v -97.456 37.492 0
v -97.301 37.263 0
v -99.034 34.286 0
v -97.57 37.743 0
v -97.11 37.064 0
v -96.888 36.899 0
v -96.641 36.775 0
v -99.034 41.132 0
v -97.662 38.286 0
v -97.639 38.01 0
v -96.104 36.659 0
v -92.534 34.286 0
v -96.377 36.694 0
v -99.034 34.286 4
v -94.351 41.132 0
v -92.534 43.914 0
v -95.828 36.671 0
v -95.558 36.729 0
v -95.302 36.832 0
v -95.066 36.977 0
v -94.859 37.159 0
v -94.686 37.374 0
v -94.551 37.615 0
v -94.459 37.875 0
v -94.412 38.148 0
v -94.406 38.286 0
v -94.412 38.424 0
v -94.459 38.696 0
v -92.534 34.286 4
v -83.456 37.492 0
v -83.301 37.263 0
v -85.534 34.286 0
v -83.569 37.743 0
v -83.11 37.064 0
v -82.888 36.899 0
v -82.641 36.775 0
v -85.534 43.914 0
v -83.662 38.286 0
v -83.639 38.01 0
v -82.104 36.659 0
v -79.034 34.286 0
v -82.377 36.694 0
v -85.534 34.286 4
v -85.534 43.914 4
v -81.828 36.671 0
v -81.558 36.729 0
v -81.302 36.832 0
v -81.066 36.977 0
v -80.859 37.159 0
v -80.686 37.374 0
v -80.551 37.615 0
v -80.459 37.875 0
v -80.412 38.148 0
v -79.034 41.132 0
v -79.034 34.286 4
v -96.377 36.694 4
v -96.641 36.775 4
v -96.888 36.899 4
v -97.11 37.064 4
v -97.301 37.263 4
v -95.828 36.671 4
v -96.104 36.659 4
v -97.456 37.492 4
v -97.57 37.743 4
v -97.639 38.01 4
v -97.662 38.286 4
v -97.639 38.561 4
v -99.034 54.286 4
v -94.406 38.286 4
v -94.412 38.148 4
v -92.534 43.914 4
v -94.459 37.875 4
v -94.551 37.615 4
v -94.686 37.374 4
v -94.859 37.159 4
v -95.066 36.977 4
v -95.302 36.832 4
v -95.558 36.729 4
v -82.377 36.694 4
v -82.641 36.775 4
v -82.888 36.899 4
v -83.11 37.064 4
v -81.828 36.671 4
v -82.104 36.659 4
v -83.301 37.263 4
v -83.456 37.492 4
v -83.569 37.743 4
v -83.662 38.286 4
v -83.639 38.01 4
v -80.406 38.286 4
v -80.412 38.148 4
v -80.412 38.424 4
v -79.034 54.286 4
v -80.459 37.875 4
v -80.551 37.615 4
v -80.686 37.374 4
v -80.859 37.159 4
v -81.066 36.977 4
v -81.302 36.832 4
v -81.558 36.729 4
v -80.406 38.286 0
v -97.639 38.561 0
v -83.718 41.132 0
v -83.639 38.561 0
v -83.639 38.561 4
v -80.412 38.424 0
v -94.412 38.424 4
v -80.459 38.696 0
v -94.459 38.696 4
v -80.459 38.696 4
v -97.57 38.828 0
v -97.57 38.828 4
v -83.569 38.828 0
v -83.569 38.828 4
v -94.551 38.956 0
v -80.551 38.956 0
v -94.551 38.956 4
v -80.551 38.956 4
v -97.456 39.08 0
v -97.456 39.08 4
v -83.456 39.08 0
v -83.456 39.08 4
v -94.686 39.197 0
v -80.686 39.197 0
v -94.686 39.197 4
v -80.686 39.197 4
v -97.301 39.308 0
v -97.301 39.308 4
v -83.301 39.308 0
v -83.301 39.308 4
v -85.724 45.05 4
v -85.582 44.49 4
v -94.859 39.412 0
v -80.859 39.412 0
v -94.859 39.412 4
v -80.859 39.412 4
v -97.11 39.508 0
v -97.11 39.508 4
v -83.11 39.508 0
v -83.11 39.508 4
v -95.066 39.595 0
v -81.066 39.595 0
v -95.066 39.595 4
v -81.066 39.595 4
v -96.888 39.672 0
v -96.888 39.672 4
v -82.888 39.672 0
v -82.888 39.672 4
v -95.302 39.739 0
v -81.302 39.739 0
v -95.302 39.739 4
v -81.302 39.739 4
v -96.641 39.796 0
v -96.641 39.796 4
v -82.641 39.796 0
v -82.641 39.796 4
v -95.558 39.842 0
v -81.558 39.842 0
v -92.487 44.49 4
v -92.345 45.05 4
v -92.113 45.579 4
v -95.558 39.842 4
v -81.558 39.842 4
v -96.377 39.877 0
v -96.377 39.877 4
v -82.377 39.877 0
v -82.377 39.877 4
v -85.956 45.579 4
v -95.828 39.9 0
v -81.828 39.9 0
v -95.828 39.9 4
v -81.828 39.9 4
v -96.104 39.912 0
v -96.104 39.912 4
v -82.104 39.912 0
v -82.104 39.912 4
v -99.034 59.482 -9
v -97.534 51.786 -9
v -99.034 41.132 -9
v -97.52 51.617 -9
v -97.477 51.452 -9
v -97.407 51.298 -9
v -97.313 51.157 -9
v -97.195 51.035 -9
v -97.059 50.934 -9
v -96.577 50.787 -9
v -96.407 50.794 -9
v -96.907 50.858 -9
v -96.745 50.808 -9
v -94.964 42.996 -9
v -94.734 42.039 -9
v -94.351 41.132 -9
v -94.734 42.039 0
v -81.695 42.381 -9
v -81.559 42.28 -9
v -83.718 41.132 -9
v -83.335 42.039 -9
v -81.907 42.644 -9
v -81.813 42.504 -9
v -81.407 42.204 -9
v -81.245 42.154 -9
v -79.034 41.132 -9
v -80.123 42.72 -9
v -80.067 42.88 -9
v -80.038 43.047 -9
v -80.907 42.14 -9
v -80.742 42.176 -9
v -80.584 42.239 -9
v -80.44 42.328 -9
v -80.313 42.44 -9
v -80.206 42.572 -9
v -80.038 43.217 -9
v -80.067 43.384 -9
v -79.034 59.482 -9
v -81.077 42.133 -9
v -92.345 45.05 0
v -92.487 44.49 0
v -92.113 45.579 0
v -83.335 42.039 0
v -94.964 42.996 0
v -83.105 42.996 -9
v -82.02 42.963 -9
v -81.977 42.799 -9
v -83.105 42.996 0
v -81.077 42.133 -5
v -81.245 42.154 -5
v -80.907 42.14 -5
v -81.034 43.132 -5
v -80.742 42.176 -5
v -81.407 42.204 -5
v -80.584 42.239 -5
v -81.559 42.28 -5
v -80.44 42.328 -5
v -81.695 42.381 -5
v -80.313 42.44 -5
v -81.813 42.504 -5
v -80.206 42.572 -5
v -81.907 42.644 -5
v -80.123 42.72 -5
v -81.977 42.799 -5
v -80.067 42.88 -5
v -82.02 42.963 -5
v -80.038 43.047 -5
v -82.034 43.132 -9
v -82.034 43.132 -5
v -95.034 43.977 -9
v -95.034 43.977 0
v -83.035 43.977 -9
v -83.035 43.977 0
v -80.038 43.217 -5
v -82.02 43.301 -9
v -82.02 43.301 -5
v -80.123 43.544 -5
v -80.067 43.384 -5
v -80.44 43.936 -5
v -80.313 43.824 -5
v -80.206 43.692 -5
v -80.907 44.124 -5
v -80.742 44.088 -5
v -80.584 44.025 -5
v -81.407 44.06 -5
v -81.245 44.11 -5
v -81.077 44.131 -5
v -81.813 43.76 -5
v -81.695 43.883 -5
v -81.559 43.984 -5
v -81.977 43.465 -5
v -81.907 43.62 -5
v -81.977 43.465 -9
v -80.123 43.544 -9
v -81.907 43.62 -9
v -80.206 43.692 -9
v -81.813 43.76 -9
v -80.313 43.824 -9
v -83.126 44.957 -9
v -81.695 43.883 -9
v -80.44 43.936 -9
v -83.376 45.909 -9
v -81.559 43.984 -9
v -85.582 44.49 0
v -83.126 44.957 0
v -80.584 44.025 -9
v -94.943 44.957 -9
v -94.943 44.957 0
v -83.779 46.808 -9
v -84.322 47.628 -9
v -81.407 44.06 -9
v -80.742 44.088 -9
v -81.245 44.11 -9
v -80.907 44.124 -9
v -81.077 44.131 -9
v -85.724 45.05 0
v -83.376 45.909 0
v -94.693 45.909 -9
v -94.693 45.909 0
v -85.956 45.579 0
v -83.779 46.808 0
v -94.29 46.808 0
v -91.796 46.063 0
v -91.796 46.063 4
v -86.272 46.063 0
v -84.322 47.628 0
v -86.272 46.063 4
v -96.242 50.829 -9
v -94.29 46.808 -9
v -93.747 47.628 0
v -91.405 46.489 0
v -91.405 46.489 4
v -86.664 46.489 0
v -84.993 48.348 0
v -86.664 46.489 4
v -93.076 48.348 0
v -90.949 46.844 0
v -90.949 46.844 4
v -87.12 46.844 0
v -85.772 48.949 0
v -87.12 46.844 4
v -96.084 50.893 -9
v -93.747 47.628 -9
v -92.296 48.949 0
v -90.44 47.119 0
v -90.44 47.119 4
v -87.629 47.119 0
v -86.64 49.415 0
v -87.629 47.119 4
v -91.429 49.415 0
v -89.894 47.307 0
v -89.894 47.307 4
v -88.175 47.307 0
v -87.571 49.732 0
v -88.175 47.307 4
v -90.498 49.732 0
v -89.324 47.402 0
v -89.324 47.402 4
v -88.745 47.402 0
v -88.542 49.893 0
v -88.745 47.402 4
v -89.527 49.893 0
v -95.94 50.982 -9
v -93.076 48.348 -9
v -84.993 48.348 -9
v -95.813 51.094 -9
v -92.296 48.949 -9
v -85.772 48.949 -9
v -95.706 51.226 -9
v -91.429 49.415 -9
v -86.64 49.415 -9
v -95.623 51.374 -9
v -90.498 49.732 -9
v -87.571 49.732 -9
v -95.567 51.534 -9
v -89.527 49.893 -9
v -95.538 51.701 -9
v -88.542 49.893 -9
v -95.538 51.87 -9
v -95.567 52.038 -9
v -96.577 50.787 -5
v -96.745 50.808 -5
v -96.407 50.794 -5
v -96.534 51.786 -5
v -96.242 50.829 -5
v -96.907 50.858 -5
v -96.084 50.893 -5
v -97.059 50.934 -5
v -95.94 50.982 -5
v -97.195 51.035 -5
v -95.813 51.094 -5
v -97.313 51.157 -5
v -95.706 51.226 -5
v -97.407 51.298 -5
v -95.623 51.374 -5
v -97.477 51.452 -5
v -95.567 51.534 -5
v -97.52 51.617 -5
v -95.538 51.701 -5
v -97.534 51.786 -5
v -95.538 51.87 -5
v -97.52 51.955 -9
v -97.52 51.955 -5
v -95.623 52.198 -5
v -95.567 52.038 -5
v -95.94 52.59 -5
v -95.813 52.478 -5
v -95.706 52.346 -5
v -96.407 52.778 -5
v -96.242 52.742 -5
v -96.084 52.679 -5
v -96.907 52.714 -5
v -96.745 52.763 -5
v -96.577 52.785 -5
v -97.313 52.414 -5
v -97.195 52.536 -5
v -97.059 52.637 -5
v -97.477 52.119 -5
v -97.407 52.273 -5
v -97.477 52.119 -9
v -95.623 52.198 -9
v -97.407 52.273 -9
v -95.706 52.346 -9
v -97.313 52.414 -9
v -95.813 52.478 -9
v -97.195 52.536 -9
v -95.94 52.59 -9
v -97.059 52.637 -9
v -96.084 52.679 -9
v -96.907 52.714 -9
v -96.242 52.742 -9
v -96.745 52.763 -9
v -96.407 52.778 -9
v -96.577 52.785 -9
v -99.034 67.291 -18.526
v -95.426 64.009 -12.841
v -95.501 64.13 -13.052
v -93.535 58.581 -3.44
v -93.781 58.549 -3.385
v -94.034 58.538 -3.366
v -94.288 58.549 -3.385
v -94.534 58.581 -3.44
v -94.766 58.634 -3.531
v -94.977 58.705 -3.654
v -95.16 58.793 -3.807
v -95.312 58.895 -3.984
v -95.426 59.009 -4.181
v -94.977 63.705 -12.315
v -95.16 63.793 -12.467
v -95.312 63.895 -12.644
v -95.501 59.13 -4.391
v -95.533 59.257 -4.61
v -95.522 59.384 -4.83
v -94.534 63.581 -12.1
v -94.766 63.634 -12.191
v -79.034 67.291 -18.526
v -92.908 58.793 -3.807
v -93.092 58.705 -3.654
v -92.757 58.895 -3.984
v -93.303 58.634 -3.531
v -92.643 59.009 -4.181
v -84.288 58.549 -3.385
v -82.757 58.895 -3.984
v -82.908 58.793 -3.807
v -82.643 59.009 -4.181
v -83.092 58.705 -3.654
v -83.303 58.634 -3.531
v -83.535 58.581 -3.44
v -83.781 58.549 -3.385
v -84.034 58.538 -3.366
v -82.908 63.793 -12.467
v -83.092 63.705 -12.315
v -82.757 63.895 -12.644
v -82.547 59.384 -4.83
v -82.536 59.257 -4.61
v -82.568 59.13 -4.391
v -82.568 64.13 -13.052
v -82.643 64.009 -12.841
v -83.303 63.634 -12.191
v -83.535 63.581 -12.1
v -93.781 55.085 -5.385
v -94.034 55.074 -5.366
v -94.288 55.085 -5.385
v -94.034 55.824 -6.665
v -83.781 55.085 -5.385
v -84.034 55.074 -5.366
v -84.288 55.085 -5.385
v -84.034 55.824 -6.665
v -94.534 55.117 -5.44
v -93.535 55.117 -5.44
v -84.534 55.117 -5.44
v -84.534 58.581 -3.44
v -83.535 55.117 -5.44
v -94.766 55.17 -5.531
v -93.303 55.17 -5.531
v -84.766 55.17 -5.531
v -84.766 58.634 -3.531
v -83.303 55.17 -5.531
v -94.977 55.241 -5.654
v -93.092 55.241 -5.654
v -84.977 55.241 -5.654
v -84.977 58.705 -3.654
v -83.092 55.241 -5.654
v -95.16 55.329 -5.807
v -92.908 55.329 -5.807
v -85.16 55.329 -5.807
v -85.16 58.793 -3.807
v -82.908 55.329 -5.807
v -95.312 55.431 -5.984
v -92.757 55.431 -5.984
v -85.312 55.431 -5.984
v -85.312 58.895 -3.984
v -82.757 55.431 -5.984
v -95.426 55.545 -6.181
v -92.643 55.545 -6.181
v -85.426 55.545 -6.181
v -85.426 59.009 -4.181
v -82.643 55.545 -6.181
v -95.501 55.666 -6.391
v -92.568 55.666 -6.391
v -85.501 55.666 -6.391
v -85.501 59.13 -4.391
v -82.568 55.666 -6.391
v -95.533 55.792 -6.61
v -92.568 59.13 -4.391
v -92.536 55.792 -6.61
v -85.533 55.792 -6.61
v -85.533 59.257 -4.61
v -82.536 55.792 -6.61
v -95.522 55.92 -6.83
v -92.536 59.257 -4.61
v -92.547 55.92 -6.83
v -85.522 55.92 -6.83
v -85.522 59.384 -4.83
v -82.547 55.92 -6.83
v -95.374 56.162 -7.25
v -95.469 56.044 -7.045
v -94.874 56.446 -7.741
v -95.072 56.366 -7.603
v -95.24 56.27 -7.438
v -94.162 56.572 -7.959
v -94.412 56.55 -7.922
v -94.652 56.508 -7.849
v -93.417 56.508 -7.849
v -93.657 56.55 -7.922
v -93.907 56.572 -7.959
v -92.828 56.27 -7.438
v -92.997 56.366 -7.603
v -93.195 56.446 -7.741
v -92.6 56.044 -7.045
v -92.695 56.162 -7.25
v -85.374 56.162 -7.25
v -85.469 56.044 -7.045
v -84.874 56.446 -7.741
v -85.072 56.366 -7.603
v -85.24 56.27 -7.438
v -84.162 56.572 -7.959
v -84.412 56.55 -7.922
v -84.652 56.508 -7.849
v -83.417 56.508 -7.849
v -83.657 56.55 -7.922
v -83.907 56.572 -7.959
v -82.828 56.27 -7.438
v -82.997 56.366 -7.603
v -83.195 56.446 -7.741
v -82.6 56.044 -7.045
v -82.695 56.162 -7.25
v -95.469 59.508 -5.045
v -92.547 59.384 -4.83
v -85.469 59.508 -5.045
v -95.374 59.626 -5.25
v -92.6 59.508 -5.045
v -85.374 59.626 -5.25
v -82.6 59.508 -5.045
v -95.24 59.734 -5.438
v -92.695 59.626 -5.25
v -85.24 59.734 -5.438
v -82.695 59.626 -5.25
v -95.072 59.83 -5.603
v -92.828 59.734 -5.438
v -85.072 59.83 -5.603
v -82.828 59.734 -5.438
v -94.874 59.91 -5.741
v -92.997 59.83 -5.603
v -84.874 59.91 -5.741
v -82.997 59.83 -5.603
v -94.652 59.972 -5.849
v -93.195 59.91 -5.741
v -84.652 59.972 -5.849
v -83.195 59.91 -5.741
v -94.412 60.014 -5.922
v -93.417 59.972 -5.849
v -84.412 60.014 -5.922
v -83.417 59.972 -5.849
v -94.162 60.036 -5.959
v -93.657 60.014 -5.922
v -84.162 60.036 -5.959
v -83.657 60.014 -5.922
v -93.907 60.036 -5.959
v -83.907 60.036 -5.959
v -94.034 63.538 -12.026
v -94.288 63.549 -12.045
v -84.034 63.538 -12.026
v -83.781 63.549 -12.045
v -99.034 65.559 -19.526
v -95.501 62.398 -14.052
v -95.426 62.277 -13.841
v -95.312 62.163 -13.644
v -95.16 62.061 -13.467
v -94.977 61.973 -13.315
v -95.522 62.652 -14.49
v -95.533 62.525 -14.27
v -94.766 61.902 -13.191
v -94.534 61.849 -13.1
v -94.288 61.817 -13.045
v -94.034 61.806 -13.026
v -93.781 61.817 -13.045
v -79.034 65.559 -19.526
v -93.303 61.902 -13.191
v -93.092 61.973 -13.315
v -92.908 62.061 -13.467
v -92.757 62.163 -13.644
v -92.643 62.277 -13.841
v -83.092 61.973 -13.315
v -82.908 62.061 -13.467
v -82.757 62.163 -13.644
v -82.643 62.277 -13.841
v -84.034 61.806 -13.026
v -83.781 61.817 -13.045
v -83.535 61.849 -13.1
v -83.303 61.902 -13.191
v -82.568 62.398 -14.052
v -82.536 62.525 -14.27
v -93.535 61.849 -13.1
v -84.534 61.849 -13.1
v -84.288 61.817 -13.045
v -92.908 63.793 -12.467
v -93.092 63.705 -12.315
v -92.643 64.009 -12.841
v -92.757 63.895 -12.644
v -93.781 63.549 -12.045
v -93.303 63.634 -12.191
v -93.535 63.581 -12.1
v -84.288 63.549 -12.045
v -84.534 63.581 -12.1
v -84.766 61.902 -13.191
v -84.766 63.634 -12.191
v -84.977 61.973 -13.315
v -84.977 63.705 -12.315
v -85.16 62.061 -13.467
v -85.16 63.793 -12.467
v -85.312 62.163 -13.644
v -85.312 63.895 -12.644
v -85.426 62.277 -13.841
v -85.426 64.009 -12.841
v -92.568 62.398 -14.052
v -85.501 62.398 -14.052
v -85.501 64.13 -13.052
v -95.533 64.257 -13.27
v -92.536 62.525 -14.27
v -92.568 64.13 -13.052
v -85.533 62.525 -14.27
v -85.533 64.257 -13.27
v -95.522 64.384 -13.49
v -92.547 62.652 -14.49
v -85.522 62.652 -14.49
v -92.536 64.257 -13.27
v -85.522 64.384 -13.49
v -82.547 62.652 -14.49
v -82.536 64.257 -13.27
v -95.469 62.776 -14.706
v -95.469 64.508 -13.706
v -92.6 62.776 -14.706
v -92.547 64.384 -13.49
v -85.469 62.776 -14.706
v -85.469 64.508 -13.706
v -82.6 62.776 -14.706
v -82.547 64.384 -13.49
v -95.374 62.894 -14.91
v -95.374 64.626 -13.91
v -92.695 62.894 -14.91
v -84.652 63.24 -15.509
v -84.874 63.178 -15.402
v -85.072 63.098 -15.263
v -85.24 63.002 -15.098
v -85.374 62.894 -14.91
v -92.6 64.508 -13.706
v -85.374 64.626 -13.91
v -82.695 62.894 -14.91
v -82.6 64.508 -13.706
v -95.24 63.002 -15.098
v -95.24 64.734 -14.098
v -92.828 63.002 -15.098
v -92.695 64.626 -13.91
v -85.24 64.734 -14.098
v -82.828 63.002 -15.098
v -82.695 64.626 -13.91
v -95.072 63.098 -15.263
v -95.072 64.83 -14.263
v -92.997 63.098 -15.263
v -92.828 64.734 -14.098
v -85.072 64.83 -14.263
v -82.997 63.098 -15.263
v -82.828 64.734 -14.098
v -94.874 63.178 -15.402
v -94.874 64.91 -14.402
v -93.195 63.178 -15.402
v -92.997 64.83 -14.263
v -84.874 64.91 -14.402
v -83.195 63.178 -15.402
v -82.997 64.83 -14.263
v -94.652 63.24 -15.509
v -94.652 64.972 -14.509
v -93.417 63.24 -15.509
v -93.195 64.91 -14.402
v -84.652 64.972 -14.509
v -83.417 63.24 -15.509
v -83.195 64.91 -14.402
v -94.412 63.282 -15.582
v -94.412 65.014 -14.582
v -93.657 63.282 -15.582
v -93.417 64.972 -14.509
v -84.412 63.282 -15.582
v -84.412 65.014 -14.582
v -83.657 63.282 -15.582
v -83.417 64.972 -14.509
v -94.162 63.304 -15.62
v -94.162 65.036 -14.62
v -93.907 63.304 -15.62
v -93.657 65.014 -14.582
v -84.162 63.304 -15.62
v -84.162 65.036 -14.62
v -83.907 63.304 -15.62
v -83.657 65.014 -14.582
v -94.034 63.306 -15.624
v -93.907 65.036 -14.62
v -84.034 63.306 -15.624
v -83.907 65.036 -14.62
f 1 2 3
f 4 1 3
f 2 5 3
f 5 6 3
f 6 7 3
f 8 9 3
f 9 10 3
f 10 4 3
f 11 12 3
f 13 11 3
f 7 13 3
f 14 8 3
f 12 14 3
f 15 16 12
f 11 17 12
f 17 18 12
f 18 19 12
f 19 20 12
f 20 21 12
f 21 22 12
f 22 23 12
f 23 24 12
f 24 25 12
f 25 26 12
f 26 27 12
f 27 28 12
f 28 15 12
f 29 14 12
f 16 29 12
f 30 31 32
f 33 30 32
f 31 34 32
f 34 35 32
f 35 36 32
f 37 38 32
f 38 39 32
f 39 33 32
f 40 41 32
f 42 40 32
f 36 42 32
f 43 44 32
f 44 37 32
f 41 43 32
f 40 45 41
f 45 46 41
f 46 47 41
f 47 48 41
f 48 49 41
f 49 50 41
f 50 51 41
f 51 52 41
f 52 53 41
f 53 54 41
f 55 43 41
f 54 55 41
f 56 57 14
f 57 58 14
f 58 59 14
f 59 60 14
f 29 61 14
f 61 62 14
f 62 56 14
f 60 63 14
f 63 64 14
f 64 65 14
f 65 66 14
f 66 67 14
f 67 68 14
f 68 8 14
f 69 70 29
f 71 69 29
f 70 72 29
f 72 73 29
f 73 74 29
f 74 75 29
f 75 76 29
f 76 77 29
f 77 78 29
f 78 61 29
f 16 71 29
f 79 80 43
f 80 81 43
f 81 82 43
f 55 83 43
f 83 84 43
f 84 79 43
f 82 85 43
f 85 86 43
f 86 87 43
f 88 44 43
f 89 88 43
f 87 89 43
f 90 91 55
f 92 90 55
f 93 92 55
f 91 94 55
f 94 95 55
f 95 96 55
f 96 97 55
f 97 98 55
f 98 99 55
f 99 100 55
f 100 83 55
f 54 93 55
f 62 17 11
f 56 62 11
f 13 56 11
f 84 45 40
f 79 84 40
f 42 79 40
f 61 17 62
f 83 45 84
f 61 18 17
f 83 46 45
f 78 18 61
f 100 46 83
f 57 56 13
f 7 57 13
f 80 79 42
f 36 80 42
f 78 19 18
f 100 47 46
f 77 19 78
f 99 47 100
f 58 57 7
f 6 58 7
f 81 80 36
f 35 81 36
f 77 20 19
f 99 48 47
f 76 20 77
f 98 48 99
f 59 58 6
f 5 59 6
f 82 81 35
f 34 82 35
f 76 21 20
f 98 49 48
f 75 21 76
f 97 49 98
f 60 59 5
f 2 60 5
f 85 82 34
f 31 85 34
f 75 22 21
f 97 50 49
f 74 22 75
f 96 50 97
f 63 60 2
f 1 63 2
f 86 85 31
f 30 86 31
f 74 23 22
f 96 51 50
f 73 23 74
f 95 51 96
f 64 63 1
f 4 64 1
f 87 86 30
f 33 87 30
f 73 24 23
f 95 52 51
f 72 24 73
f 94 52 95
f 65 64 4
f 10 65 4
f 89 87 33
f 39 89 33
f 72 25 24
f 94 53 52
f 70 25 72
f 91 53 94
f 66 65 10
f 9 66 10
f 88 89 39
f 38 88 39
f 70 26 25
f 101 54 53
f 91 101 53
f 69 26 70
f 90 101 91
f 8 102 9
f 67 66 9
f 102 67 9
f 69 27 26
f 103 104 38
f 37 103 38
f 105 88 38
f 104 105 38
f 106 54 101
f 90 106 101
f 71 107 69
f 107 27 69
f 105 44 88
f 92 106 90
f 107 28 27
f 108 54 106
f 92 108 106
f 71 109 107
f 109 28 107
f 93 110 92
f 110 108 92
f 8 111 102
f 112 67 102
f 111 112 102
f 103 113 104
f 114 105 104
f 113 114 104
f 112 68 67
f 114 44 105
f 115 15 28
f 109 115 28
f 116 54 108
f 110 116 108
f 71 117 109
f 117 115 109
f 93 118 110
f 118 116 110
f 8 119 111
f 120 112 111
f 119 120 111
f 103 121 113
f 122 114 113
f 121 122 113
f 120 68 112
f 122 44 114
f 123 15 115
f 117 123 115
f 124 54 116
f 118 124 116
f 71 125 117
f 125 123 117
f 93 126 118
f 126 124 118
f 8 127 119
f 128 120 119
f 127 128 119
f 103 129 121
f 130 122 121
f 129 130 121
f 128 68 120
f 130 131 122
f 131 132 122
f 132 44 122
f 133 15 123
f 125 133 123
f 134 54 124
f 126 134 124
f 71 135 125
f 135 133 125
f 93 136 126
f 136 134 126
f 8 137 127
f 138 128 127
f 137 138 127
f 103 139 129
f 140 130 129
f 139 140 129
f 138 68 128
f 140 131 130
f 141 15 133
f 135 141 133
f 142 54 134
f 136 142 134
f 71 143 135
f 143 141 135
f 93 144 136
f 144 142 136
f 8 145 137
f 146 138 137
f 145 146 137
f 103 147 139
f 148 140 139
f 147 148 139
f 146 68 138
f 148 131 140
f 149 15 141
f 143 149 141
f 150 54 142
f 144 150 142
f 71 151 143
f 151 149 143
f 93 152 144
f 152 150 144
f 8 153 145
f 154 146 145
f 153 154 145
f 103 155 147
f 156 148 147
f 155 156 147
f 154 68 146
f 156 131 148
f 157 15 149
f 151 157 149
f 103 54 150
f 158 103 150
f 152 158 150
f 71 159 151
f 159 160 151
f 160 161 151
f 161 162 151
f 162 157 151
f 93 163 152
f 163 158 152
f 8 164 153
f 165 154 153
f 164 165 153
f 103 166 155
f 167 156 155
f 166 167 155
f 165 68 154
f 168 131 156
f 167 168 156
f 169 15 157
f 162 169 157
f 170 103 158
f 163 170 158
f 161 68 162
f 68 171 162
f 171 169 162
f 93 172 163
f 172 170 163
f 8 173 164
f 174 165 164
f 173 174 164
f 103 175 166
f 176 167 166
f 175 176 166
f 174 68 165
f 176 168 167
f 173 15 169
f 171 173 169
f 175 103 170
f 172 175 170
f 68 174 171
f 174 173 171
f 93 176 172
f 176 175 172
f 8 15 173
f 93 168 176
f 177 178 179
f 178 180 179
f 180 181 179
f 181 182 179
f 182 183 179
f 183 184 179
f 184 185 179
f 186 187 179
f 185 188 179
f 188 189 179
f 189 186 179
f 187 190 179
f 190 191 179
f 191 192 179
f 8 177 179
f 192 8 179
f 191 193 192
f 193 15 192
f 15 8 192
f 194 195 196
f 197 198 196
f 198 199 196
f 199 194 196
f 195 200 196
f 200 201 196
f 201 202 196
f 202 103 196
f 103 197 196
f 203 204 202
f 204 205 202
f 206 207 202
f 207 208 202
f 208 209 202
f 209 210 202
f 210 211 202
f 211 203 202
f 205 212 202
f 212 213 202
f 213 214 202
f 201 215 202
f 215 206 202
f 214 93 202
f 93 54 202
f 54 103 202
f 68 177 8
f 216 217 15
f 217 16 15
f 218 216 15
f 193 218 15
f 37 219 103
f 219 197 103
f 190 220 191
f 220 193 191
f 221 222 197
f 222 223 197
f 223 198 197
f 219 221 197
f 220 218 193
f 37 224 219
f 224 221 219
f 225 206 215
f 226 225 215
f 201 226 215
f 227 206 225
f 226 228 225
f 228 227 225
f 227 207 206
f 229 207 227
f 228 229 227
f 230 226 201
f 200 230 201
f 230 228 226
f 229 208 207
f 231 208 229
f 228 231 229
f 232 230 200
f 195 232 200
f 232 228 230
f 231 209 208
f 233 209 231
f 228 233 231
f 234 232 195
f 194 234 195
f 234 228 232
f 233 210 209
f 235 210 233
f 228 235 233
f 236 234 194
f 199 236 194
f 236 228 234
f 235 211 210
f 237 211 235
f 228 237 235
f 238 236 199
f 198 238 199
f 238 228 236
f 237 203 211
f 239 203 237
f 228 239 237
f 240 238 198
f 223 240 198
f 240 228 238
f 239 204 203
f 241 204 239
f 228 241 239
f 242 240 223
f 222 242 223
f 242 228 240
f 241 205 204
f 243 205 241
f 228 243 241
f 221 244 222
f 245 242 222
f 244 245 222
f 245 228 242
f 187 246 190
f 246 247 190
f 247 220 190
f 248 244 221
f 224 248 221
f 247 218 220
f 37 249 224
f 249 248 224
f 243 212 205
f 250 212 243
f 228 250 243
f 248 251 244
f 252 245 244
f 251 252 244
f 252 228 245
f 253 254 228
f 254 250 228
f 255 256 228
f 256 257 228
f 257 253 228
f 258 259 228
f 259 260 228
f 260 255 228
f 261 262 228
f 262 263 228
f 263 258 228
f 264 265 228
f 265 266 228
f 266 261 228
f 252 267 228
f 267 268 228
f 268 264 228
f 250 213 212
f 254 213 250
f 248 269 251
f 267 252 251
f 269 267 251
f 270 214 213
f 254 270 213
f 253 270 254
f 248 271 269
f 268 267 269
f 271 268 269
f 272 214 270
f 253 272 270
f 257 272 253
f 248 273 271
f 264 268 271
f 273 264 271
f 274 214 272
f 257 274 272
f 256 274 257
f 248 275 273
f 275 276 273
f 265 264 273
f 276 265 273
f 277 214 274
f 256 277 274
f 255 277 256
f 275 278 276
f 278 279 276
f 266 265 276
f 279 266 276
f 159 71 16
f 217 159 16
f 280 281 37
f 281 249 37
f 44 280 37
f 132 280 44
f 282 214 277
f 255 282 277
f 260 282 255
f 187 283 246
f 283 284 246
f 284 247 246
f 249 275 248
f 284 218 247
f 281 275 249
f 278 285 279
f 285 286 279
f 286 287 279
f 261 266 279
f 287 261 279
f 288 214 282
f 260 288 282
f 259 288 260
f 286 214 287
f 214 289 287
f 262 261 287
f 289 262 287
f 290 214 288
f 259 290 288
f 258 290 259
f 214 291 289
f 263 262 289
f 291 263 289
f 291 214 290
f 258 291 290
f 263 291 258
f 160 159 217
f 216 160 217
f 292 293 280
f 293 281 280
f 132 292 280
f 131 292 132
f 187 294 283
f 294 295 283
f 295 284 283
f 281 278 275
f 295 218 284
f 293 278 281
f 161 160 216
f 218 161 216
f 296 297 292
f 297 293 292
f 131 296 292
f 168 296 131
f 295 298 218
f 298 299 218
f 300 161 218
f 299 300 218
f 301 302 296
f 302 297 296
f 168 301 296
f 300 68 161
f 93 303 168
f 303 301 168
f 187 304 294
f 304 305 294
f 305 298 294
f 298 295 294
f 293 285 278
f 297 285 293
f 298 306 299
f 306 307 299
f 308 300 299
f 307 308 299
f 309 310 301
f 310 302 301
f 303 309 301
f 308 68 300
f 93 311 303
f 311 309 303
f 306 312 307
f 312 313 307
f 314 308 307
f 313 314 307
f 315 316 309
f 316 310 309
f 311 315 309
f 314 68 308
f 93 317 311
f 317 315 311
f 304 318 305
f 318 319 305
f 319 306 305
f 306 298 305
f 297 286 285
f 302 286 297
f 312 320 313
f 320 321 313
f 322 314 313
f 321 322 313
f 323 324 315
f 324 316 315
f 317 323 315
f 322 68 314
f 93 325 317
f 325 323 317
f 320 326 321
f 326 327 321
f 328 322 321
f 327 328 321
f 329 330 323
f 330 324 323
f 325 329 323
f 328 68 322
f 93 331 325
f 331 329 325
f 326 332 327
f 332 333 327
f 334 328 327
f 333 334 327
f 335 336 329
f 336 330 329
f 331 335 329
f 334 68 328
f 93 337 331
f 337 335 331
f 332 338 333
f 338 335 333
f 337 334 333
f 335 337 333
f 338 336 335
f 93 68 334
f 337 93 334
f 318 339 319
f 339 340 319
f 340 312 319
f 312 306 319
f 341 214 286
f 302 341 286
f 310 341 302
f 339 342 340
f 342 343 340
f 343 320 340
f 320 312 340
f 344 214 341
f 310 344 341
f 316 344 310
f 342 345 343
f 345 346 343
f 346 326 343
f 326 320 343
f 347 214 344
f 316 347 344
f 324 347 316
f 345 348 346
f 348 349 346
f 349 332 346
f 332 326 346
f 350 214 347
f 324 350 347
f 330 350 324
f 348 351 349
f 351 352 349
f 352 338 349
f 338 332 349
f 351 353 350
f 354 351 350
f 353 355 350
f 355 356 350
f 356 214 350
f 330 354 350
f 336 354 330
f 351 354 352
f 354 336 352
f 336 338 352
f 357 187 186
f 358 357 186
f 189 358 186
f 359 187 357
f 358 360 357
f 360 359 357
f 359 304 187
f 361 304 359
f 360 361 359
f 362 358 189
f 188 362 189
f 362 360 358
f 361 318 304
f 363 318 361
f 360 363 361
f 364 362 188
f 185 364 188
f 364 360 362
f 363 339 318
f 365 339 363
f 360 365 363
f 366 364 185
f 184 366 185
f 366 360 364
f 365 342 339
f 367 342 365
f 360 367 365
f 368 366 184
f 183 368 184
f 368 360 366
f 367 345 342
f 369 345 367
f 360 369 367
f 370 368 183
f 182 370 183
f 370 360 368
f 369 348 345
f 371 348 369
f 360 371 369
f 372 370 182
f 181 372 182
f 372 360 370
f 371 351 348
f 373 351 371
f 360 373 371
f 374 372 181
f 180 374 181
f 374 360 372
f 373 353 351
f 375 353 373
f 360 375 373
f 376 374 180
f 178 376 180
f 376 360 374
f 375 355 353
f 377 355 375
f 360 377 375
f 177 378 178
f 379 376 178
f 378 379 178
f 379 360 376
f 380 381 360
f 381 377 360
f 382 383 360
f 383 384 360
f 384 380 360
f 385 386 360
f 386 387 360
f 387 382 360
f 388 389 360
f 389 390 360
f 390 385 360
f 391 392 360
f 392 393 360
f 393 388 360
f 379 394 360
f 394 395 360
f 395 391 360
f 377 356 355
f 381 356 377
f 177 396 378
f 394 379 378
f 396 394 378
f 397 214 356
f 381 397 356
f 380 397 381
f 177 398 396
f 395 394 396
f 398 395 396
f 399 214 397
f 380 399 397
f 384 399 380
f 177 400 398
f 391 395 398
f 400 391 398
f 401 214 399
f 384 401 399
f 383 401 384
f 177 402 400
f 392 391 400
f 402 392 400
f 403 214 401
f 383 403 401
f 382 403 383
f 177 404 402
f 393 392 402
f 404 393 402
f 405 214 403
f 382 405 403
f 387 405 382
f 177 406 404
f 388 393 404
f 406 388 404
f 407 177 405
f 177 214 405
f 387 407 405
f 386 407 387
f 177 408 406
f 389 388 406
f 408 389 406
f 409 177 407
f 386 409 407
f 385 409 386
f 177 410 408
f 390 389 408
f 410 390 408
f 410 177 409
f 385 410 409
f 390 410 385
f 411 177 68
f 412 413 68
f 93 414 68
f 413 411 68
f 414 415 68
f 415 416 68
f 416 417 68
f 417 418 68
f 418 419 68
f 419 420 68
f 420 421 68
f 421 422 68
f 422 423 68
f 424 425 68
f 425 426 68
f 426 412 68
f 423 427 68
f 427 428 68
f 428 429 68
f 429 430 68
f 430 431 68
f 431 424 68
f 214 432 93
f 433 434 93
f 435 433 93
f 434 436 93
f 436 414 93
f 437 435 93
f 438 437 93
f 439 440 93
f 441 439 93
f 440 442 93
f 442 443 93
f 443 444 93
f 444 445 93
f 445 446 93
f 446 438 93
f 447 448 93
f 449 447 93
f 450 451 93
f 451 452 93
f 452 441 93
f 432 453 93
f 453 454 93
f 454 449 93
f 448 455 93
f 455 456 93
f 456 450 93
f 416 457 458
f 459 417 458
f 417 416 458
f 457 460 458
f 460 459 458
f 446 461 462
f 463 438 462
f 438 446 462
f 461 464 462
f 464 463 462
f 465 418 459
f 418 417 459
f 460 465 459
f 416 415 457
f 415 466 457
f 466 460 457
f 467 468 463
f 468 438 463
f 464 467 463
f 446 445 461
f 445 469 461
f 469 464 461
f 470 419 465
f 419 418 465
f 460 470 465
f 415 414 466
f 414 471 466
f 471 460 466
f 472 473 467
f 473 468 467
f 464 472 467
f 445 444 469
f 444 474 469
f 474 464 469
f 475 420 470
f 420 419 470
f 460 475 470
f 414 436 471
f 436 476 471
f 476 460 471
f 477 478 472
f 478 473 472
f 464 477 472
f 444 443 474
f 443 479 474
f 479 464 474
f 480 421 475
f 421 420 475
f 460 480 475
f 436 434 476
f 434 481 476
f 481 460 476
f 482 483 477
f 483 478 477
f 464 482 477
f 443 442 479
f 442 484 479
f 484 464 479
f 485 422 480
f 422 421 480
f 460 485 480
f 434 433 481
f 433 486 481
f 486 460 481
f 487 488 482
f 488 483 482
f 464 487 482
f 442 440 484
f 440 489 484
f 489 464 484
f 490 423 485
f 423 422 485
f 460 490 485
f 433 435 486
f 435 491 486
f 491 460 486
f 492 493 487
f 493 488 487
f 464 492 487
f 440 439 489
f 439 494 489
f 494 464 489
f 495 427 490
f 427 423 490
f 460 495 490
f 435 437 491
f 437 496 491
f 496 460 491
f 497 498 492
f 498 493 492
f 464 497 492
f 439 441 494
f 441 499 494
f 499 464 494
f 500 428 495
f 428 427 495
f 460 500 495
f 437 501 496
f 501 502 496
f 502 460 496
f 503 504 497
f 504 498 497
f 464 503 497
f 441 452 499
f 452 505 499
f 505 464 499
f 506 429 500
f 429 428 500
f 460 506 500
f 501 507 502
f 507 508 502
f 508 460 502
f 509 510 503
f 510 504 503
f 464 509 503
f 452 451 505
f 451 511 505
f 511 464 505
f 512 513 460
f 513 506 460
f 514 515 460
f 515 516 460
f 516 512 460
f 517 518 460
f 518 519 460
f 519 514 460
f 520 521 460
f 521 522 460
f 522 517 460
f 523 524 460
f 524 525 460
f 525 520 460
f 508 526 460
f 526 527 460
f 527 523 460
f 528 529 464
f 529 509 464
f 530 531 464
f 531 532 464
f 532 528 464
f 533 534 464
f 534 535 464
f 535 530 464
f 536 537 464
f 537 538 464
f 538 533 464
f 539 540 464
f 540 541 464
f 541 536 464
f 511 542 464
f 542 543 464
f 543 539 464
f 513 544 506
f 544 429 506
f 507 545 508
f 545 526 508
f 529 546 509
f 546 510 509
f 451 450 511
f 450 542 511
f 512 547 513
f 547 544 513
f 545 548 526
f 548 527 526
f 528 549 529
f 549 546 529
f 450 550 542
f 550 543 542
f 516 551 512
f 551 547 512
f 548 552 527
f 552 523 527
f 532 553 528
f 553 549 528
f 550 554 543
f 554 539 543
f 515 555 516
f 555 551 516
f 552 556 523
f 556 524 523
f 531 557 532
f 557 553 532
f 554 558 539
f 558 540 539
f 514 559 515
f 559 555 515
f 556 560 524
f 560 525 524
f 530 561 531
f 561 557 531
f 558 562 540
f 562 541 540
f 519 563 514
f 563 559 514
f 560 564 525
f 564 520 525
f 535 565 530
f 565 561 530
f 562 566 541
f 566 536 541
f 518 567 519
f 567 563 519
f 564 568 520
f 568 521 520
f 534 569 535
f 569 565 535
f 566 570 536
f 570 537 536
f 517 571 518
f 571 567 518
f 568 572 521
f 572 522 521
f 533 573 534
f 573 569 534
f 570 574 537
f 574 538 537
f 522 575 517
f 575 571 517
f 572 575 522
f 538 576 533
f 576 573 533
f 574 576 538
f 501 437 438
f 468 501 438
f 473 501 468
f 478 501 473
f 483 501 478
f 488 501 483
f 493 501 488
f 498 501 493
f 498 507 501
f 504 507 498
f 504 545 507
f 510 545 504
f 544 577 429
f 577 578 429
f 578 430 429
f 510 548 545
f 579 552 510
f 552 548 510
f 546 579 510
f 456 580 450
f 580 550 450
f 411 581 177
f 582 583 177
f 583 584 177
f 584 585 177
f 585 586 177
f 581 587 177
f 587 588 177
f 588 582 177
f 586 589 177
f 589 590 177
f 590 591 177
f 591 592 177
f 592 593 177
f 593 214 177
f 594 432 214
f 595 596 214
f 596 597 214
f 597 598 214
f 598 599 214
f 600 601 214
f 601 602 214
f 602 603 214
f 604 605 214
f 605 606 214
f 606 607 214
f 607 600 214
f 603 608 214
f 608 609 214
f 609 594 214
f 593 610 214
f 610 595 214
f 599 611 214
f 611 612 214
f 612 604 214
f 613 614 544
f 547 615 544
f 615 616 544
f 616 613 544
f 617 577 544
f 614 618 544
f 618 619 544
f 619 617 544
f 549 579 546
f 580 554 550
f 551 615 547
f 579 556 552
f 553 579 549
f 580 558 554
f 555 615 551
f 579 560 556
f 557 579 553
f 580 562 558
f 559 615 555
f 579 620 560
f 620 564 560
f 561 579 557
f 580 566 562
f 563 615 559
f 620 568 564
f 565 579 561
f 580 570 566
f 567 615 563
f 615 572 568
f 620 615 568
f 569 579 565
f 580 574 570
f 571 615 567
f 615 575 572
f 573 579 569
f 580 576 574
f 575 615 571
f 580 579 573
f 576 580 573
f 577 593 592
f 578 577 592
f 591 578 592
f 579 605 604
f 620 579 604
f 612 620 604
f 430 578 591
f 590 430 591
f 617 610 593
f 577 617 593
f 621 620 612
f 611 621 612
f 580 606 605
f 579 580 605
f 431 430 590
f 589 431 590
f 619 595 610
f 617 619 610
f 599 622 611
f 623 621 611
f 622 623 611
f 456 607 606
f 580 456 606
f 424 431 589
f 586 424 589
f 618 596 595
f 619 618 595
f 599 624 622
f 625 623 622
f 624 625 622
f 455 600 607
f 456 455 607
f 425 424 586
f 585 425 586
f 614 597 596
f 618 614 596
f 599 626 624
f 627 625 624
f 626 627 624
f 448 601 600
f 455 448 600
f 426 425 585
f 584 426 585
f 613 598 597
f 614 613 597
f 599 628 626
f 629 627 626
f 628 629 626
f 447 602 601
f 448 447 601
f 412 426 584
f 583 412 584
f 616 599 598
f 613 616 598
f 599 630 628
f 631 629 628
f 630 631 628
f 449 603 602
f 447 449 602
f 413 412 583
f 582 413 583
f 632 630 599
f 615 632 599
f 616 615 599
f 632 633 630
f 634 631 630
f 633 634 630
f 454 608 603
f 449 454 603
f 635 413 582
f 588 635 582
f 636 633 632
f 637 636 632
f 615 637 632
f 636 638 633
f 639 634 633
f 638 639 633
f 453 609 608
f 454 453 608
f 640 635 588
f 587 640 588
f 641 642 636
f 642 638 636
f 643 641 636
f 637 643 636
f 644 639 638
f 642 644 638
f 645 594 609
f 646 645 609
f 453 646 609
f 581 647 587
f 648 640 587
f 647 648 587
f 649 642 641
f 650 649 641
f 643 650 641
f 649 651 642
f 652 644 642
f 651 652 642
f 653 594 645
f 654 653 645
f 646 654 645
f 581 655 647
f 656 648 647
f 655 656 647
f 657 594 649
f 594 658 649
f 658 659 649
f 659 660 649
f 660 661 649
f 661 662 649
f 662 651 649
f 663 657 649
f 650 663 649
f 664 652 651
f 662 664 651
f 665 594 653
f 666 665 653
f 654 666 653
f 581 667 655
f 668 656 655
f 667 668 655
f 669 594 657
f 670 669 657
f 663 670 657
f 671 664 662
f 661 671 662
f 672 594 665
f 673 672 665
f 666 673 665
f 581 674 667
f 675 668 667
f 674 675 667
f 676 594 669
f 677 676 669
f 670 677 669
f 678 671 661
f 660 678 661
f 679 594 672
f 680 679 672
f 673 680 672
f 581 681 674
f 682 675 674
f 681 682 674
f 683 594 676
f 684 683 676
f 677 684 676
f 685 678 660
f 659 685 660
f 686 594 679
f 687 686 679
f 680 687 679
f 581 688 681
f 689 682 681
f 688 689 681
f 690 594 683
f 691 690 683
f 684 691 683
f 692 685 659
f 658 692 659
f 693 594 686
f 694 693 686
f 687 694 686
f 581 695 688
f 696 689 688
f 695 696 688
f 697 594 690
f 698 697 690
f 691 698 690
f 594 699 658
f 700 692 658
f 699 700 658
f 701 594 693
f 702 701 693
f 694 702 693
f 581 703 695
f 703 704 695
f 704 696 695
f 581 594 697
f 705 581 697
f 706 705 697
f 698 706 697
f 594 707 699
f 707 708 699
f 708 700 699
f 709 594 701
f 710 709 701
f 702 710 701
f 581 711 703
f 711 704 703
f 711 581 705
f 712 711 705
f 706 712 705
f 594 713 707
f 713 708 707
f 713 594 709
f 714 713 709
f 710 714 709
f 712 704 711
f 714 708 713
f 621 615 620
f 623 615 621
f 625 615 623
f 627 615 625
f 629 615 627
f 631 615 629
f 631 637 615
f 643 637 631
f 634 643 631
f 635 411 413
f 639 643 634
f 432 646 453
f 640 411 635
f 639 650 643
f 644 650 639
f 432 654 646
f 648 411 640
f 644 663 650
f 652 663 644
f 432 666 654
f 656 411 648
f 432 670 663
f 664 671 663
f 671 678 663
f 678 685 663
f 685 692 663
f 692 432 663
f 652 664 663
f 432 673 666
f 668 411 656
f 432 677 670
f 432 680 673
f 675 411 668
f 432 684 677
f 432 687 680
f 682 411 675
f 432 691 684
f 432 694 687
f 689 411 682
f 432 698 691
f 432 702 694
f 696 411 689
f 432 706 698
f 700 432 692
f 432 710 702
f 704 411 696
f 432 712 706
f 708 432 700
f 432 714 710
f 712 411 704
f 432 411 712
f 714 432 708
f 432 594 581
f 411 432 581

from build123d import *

# Parameters (mm, degrees)
CROQUIS1_R              = 1.628014373
SALIENTE_EXTRUIR1_DEPTH = 4
SALIENTE_EXTRUIR2_DEPTH = 9
CROQUIS10_R             = 1
CORTAR_EXTRUIR3_DEPTH   = 4
SALIENTE_EXTRUIR3_DEPTH = 20
SALIENTE_EXTRUIR4_DEPTH = 20
CROQUIS17_R             = 1.5
CORTAR_EXTRUIR6_DEPTH   = 4
CROQUIS19_W             = 20
CROQUIS19_H             = 4
CORTAR_EXTRUIR7_DEPTH   = 2


with BuildPart() as part:
    # Croquis1 → Saliente-Extruir1 (new body)
    with BuildSketch(Plane.XY):
        with BuildLine():
            Line((-79.034482165, 42.285614206), (-79.034482165, 34.285614206))
            Line((-79.034482165, 34.285614206), (-85.534482165, 34.285614206))
            Line((-85.534482165, 34.285614206), (-85.534482165, 43.91362858))
            ThreePointArc((-85.534482165, 43.91362858), (-89.034482165, 47.41362858), (-92.534482165, 43.91362858))
            Line((-92.534482165, 43.91362858), (-92.534482165, 34.285614206))
            Line((-92.534482165, 34.285614206), (-99.034482165, 34.285614206))
            Line((-99.034482165, 34.285614206), (-99.034482165, 42.285614206))
            Line((-99.034482165, 42.285614206), (-99.034482165, 54.285614206))
            Line((-99.034482165, 54.285614206), (-79.034482165, 54.285614206))
            Line((-79.034482165, 54.285614206), (-79.034482165, 42.285614206))
        make_face()
        with Locations((-96.034482165, 38.285614206)):
            Circle(CROQUIS1_R, mode=Mode.SUBTRACT)
        with Locations((-82.034482165, 38.285614206)):
            Circle(CROQUIS1_R, mode=Mode.SUBTRACT)
    extrude(amount=SALIENTE_EXTRUIR1_DEPTH)

    # Croquis2 → Saliente-Extruir2 (add)
    with BuildSketch(Plane(origin=(0, 0, 0), x_dir=(-1, 0, 0), z_dir=(0, 0, -1))):
        with BuildLine():
            Line((79.034482165, 41.131975098), (83.718242525, 41.131975098))
            ThreePointArc((83.718242525, 41.131975098), (89.034482165, 49.91362858), (94.350721805, 41.131975098))
            Line((94.350721805, 41.131975098), (99.034482165, 41.131975098))
            Line((99.034482165, 41.131975098), (99.034482165, 54.285614206))
            Line((99.034482165, 54.285614206), (79.034482165, 54.285614206))
            Line((79.034482165, 54.285614206), (79.034482165, 41.131975098))
        make_face()
    extrude(amount=SALIENTE_EXTRUIR2_DEPTH)

    # Croquis10 → Cortar-Extruir3 (cut)
    with BuildSketch(Plane(origin=(0, 0, -9), x_dir=(-1, 0, 0), z_dir=(0, 0, -1))):
        with Locations((96.534482165, 51.785614206)):
            Circle(CROQUIS10_R)
        with Locations((81.034482165, 43.131975098)):
            Circle(CROQUIS10_R)
    extrude(amount=-CORTAR_EXTRUIR3_DEPTH, mode=Mode.SUBTRACT)

    # Croquis11 → Saliente-Extruir3 (add)
    with BuildSketch(Plane.ZY.offset(99.034482165)):
        Polygon((-9, 54.285614206), (-9, 61.791167706), (4, 54.285614206), align=None)
    extrude(amount=-SALIENTE_EXTRUIR3_DEPTH)

    # Croquis16 → Saliente-Extruir4 (add)
    with BuildSketch(Plane.ZY.offset(99.034482165)):
        Polygon((-9, 61.791167706), (-21.990381057, 69.291167706), (-22.990381057, 67.559116898), (-9, 59.481766629), align=None)
    extrude(amount=-SALIENTE_EXTRUIR4_DEPTH)

    # Croquis17 → Cortar-Extruir6 (cut)
    with BuildSketch(Plane(origin=(0, 42.446261462, 24.506360481), x_dir=(1, 0, 0), z_dir=(0, 0.8660254037844418, 0.49999999999999484))):
        with Locations(Location((-84.034482165, 33.684258988, 0), (0, 0, 270))):
            Circle(CROQUIS17_R)
        with Locations(Location((-94.034482165, 33.684258988, 0), (0, 0, 270))):
            Circle(CROQUIS17_R)
        with Locations(Location((-94.034482165, 43.684258988, 0), (0, 0, 270))):
            Circle(CROQUIS17_R)
        with Locations(Location((-84.034482165, 43.684258988, 0), (0, 0, 270))):
            Circle(CROQUIS17_R)
    extrude(amount=-CORTAR_EXTRUIR6_DEPTH, mode=Mode.SUBTRACT)

    # Croquis19 → Cortar-Extruir7 (cut)
    with BuildSketch(Plane(origin=(0, 42.446261462, 24.506360481), x_dir=(1, 0, 0), z_dir=(0, 0.8660254037844418, 0.49999999999999484))):
        with Locations((-89.034482165, 51.689812487)):
            Rectangle(CROQUIS19_W, CROQUIS19_H)
    extrude(amount=-CORTAR_EXTRUIR7_DEPTH, mode=Mode.SUBTRACT)


solid = part.part
